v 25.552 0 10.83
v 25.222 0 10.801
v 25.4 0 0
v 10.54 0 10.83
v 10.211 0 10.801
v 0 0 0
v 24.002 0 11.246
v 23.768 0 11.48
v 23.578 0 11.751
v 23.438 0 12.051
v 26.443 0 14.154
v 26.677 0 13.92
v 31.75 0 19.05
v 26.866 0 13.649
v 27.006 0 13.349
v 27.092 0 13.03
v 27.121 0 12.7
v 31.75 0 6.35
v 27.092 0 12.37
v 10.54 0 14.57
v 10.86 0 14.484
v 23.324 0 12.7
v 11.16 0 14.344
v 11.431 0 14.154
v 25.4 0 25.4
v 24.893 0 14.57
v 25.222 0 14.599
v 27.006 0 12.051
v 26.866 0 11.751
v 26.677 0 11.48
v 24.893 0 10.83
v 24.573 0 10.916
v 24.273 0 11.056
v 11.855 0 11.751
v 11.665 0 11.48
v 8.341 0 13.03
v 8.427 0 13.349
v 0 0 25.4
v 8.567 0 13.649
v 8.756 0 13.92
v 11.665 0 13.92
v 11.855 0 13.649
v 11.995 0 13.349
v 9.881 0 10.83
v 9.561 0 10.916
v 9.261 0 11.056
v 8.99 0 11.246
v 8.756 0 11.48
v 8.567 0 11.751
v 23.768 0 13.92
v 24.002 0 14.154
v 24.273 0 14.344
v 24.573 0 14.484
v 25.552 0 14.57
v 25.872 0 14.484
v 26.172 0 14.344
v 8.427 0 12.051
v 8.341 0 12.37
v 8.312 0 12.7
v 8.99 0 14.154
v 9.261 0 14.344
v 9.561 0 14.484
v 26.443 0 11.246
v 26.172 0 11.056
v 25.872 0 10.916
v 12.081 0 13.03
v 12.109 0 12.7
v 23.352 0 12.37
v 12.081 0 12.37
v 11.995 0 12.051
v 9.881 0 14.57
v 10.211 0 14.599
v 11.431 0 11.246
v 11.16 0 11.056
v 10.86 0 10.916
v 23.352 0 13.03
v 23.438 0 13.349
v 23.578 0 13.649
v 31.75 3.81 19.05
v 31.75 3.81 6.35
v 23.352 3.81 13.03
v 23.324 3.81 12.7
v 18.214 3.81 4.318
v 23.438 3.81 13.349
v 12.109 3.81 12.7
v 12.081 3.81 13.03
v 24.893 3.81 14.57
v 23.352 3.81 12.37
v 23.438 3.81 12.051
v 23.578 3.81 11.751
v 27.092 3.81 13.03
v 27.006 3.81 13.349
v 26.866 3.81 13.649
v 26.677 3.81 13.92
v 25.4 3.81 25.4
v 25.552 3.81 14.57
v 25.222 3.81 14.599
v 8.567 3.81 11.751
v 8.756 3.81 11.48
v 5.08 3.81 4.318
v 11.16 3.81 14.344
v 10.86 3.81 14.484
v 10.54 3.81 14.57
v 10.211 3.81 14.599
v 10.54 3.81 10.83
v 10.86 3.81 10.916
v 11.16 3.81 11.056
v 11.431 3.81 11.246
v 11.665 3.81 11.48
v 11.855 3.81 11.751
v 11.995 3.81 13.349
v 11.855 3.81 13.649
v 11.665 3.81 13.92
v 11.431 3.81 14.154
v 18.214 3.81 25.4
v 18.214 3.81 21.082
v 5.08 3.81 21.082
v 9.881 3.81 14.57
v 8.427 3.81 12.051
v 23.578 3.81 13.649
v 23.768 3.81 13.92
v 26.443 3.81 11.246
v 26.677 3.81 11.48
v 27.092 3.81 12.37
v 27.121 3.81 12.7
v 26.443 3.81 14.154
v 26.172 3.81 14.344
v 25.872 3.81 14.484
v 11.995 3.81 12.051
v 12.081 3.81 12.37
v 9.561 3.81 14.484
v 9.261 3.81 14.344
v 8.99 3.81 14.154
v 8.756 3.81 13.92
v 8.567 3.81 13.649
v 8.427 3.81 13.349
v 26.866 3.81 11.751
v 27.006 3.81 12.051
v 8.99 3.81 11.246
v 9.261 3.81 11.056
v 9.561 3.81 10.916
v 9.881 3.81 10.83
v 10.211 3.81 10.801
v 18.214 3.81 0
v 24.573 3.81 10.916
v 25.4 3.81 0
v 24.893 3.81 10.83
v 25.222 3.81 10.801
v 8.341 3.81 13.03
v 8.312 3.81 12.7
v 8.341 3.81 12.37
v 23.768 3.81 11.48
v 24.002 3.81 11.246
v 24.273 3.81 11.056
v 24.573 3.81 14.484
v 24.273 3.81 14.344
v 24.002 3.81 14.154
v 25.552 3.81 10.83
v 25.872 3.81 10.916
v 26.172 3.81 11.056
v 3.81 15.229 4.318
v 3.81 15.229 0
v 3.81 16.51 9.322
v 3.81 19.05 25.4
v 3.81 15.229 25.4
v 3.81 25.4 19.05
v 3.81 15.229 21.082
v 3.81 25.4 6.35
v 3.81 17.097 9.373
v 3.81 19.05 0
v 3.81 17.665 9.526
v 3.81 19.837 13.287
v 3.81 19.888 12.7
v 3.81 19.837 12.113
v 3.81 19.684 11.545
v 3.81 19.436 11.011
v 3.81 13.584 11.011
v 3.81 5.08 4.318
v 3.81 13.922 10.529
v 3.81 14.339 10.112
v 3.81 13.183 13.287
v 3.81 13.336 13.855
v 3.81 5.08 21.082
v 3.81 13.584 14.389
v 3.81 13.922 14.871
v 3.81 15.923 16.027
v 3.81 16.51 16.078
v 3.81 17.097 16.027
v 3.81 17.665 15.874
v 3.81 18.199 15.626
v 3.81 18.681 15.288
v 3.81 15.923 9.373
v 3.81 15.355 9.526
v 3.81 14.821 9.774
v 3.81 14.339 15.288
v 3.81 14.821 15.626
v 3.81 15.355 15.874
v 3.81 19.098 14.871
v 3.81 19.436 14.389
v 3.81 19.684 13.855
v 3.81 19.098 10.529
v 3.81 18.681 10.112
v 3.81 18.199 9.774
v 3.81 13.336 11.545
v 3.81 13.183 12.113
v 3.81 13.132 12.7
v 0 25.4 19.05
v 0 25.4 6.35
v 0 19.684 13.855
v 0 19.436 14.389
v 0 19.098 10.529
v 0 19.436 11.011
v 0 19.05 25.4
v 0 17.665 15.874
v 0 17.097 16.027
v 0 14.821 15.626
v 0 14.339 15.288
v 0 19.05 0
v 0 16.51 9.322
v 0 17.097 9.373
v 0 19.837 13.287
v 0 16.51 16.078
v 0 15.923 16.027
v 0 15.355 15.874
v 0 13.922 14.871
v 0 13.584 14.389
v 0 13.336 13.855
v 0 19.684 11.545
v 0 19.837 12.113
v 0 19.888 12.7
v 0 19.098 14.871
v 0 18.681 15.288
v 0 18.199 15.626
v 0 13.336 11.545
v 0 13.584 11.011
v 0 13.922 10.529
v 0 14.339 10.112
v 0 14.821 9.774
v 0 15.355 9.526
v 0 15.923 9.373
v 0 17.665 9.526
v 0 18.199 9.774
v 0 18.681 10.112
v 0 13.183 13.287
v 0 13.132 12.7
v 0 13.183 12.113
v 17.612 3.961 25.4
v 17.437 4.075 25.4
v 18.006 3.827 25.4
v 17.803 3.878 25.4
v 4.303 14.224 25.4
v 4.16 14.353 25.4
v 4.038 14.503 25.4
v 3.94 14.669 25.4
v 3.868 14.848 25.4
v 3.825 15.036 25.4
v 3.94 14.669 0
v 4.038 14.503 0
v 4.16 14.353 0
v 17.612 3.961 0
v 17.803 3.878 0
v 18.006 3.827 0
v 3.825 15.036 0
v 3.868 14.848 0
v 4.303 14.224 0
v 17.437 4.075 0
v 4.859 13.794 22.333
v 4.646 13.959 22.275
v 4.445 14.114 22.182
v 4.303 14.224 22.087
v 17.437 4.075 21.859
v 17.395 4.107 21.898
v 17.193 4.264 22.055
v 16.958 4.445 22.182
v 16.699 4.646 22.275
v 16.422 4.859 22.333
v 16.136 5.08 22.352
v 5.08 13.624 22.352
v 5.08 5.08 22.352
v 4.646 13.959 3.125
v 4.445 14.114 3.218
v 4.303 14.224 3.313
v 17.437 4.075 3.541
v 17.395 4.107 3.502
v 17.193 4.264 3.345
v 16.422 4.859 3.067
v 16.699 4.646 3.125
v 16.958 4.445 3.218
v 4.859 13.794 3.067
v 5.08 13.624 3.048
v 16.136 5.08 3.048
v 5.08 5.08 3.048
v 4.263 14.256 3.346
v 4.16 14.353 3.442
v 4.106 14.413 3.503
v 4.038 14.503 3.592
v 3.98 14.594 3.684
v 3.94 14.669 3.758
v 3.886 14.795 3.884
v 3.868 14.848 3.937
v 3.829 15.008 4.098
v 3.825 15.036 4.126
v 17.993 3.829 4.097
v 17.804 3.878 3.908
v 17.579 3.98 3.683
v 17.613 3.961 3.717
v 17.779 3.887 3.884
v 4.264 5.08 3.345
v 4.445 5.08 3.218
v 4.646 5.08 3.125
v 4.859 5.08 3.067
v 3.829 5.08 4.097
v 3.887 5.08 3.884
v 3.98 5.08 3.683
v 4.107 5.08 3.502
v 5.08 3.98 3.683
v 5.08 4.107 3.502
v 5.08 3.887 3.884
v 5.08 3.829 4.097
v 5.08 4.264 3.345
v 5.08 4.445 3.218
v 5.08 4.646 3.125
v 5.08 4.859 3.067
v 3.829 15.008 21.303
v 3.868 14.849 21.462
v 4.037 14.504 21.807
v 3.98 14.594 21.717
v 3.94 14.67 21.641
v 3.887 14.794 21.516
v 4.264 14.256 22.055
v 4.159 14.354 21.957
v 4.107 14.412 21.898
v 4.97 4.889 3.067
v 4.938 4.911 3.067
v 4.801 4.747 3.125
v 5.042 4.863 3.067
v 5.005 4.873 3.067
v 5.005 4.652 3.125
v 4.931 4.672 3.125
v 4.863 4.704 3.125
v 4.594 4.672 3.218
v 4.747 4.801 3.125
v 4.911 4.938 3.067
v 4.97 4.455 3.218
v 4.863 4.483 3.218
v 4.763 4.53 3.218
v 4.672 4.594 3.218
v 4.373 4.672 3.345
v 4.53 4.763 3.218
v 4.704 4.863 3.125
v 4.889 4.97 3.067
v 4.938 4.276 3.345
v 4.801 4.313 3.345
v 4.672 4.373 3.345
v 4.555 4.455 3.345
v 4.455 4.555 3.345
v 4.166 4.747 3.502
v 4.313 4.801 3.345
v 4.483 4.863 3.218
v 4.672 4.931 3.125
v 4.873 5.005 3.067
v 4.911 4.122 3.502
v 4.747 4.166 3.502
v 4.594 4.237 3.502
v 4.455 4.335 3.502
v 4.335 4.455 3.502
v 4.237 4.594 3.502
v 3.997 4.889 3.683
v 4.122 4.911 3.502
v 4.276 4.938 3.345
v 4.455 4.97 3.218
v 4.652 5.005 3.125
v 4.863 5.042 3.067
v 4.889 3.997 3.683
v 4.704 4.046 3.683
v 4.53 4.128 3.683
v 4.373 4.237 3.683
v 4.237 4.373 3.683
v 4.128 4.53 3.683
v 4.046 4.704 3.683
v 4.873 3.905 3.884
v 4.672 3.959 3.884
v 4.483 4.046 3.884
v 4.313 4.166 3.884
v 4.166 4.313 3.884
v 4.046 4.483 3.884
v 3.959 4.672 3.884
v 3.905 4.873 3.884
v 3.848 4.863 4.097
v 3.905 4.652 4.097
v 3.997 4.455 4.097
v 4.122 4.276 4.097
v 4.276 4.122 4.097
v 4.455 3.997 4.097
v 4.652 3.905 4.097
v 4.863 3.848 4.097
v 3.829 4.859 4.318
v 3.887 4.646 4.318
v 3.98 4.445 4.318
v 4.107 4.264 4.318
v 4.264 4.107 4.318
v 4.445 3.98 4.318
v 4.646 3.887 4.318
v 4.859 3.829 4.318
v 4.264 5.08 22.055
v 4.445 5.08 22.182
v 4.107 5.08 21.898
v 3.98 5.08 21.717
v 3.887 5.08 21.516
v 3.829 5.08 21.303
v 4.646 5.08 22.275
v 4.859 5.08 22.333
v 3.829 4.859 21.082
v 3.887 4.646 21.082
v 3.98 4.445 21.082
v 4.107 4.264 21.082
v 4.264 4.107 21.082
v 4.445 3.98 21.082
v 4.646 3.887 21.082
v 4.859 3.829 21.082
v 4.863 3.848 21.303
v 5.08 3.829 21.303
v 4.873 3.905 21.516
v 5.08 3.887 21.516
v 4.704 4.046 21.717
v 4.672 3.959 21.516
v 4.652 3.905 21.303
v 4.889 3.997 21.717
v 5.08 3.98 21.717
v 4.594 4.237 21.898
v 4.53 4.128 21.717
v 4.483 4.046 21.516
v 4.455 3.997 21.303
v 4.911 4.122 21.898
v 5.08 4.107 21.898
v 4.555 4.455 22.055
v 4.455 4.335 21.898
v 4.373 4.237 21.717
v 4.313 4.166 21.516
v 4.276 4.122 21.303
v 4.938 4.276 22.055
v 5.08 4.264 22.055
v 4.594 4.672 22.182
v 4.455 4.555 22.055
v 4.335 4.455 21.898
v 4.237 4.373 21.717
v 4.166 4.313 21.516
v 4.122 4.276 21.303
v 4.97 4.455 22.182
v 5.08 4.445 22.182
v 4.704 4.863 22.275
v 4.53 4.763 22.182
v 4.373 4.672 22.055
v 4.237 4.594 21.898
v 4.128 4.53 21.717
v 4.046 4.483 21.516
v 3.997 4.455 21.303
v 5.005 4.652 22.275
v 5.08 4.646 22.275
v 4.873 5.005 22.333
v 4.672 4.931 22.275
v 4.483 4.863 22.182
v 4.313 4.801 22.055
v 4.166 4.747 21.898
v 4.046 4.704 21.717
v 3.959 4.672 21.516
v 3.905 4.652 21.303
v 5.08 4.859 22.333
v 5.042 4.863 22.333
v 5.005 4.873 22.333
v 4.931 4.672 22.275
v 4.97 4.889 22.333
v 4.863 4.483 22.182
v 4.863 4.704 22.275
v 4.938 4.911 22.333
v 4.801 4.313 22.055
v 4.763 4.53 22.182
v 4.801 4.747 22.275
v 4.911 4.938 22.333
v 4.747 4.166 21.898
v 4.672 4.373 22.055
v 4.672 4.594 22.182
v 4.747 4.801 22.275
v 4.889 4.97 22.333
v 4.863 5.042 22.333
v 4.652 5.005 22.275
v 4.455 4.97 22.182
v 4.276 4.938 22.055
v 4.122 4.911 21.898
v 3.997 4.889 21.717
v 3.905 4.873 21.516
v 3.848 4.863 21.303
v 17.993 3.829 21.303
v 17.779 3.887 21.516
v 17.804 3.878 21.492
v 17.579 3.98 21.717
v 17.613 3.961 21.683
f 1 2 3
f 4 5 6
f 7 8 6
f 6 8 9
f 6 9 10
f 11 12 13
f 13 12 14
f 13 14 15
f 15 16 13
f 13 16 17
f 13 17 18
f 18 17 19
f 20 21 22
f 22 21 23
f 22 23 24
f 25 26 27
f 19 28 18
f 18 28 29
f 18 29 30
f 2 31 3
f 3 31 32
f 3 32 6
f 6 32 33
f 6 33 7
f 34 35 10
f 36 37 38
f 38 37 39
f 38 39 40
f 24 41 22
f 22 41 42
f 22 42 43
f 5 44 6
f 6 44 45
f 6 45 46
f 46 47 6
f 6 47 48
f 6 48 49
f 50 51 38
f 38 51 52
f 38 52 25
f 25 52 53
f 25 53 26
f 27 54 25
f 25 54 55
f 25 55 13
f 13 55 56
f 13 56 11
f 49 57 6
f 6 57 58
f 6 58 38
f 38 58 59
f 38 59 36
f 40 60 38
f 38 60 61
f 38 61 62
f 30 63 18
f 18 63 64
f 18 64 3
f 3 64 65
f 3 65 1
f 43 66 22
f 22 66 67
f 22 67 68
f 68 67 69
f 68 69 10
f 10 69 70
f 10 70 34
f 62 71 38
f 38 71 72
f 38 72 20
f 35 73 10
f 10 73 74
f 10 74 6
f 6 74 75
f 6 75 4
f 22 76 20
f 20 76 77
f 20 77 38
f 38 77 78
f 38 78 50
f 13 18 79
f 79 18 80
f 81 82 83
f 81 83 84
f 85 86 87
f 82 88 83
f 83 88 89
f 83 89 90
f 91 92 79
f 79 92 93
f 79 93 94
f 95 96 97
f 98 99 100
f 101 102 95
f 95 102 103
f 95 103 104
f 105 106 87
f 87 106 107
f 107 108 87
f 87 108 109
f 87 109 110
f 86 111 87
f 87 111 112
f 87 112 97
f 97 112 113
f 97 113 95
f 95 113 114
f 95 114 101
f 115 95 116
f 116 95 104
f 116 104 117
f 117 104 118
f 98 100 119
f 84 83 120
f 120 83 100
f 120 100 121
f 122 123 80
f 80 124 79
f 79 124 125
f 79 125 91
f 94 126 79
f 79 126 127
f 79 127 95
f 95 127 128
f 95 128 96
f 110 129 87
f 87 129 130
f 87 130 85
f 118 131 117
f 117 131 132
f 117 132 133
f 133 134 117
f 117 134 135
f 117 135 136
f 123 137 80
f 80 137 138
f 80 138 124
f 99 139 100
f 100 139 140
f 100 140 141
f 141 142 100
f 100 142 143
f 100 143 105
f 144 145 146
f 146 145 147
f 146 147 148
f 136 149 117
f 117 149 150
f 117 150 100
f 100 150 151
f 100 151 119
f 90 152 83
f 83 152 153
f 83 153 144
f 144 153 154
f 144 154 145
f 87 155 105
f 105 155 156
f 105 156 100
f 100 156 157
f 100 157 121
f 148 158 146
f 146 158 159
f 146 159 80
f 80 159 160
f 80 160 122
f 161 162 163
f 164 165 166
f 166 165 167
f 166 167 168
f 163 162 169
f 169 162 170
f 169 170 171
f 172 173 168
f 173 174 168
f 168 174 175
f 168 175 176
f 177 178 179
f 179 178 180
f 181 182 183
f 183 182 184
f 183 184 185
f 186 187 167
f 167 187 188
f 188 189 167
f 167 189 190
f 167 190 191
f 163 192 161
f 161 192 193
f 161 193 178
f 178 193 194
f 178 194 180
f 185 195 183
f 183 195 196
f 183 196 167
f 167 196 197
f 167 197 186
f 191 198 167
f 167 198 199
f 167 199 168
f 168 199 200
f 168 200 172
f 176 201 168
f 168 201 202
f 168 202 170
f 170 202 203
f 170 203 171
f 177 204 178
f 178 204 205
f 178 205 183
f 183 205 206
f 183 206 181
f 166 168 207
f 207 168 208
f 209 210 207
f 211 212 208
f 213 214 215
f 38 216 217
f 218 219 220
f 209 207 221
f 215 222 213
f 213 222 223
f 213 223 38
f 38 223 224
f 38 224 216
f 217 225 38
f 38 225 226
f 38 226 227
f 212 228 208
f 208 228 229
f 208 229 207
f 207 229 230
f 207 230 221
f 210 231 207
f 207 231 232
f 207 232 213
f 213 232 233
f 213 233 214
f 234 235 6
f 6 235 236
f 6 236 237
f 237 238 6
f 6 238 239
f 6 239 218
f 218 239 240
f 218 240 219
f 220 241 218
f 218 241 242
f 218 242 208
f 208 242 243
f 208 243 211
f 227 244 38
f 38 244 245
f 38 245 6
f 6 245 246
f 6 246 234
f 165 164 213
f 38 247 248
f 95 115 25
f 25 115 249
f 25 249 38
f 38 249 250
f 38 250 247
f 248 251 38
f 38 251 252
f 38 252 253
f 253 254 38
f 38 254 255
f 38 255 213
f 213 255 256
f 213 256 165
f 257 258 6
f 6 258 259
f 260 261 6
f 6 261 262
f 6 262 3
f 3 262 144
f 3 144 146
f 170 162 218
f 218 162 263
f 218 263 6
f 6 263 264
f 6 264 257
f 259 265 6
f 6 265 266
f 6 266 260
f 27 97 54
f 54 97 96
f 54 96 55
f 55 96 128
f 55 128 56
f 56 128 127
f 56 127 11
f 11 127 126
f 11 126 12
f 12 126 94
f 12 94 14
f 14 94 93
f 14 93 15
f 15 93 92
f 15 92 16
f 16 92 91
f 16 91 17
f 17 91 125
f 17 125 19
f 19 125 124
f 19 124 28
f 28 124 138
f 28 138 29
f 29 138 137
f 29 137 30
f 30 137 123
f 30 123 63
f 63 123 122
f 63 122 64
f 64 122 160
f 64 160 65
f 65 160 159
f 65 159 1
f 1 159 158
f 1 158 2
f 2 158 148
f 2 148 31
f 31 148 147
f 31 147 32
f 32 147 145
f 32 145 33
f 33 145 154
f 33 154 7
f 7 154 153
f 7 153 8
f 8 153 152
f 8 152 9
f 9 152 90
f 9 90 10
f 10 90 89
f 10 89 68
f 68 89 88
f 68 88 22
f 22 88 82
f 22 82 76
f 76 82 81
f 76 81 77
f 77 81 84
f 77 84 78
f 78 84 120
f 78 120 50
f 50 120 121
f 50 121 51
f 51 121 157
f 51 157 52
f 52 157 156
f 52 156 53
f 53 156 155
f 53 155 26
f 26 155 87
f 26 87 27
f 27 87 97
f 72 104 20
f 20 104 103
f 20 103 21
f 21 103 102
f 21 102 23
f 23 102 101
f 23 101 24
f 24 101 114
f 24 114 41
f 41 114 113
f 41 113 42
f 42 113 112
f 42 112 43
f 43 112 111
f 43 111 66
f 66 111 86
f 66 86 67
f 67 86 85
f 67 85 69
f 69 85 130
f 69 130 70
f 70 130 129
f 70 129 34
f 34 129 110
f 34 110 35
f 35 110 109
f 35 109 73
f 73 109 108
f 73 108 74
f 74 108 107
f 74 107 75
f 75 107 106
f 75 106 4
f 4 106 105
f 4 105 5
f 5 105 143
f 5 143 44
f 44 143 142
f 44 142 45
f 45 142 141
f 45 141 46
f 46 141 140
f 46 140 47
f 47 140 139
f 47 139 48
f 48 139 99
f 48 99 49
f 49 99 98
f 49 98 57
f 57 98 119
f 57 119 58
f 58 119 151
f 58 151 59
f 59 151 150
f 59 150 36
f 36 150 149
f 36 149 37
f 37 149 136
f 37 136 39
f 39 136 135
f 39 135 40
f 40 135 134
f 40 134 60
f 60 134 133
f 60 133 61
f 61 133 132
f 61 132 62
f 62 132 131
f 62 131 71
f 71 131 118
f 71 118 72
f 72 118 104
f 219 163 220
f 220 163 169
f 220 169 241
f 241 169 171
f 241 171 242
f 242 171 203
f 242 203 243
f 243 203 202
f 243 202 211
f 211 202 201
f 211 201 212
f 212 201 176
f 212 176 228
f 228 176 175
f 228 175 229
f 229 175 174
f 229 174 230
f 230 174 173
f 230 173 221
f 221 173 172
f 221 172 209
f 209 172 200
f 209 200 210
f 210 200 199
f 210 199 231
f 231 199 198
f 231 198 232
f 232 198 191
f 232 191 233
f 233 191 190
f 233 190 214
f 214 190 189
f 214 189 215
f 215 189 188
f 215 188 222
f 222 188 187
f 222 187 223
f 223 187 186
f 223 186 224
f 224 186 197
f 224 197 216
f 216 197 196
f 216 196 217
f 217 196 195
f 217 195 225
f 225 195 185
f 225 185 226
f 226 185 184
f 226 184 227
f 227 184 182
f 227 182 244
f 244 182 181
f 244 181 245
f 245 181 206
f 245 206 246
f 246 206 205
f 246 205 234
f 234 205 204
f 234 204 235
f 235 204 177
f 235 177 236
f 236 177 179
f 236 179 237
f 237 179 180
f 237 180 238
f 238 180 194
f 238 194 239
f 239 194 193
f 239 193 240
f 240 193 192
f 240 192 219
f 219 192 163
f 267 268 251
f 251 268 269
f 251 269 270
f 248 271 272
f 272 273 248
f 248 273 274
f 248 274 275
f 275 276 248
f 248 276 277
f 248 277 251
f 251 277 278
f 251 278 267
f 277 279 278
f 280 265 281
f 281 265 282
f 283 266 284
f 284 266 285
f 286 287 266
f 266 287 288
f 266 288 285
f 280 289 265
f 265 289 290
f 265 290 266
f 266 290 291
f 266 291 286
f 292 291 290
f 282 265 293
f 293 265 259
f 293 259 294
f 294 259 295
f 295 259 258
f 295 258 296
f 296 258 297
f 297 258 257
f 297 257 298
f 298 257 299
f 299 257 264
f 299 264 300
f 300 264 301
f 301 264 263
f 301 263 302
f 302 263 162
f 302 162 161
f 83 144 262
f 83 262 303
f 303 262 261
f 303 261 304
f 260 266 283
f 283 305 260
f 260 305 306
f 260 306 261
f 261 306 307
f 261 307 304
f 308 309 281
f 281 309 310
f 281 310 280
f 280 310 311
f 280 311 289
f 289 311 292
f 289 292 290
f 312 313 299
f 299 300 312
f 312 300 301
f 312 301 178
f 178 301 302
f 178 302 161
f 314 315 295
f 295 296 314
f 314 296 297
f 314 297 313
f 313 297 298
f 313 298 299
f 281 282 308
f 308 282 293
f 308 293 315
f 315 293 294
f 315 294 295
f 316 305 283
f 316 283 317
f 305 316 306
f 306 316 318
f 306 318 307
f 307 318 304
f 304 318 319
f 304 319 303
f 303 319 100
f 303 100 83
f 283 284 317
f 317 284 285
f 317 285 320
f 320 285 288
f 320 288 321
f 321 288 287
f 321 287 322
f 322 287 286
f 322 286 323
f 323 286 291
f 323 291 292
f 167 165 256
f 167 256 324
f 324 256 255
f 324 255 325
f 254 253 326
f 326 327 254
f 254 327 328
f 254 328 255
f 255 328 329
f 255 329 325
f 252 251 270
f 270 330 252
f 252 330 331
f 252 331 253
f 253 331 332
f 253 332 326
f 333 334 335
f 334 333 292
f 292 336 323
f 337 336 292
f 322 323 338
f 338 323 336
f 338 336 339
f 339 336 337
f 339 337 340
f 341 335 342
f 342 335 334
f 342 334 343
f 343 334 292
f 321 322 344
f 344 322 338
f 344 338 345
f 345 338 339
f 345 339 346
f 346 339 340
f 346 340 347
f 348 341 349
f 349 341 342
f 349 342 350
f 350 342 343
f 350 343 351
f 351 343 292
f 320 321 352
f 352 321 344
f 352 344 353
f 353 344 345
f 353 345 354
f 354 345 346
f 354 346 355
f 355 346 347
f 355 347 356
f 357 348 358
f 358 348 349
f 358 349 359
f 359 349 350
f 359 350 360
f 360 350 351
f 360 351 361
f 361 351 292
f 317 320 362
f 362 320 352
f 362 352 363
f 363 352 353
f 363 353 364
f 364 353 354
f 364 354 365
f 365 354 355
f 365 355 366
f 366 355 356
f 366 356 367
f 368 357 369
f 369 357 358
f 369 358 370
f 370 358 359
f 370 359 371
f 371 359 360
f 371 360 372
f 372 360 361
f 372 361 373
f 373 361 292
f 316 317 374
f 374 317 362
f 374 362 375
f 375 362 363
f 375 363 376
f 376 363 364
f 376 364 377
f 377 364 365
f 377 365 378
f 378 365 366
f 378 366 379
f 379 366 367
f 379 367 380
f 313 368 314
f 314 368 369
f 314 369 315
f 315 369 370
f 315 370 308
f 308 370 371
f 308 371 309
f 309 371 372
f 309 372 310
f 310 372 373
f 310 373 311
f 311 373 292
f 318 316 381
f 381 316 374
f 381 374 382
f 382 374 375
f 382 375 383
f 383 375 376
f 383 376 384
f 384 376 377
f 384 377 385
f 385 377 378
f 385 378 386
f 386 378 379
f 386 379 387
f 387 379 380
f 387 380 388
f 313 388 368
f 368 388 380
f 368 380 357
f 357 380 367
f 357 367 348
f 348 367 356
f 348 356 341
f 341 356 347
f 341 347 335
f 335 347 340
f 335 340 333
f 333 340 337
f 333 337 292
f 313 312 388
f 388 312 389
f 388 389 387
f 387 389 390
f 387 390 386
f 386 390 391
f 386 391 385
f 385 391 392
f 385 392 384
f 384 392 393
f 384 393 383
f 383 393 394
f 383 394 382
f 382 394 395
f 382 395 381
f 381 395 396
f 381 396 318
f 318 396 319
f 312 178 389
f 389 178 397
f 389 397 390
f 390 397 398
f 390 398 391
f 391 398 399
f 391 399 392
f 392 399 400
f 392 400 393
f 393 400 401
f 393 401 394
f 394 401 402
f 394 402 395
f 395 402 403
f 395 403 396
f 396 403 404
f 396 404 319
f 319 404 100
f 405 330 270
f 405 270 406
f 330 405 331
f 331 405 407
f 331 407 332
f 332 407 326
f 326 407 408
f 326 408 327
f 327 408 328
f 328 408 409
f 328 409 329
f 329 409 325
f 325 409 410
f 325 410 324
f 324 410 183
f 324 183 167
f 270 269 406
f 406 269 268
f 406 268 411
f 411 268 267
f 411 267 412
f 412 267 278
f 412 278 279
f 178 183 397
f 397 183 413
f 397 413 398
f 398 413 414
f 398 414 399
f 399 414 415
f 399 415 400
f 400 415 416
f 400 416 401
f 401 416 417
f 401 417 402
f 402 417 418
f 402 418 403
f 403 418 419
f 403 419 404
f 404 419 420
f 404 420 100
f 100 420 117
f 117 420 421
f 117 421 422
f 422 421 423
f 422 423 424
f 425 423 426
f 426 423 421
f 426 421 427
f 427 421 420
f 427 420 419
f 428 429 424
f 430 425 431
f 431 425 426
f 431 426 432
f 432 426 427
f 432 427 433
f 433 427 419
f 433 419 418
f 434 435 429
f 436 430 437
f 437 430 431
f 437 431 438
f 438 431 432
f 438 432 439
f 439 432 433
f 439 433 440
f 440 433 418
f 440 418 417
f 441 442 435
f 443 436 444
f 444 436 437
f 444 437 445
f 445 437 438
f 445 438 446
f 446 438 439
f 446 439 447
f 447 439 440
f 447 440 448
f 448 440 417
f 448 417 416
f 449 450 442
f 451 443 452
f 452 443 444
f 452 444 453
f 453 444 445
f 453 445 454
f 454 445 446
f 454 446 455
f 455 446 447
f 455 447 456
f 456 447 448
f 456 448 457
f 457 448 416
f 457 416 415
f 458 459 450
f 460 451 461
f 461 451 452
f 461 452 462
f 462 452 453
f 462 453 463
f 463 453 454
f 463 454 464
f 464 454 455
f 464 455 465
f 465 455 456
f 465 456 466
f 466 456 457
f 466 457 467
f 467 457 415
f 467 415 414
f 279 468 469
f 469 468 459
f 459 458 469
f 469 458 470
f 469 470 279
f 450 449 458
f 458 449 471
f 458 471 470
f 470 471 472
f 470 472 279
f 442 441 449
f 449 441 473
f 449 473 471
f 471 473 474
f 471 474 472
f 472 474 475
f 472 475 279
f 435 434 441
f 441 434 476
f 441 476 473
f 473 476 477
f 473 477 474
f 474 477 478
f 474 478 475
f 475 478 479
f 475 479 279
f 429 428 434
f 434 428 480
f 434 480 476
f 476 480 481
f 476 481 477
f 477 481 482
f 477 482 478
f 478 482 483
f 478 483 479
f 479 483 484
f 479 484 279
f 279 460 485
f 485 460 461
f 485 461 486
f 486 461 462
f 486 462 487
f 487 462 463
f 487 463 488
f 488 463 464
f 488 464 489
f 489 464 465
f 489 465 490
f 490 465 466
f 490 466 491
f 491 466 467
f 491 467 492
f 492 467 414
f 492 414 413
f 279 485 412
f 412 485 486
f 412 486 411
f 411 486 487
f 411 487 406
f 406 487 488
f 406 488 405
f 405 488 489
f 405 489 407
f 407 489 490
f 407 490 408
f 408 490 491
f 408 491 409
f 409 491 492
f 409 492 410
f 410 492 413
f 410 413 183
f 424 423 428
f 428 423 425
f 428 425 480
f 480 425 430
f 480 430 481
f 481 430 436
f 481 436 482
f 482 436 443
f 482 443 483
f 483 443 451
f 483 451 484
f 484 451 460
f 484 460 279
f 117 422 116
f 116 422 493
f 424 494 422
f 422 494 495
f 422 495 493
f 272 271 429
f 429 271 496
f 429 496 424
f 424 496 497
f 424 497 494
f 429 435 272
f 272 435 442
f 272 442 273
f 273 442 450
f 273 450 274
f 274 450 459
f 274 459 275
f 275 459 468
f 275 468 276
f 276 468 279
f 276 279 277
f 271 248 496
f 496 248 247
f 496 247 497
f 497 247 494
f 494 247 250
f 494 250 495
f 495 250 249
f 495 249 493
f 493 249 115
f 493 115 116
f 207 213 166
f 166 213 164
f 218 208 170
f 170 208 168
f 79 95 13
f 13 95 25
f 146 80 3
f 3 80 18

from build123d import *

# Parameters (mm, degrees)
BOSS_EXTRUDE1_DEPTH     = 25.4
F_6_CLEARANCE_HOLE1_D   = 3.7973
F_1_4_CLEARANCE_HOLE1_D = 6.7564
BOSS_EXTRUDE2_DEPTH     = 3.048
BOSS_EXTRUDE3_DEPTH     = 3.048
FILLET1_R               = 1.27
CHAMFER1_SIZE           = 6.35


with BuildPart() as part:
    # Sketch1 → Boss-Extrude1 (new body)
    with BuildSketch(Plane.XY):
        Polygon((0, 0), (0, 25.4), (3.81, 25.4), (3.81, 3.81), (31.75, 3.81), (31.75, 0), align=None)
    extrude(amount=BOSS_EXTRUDE1_DEPTH)

    # #6 Clearance Hole1 (through all)
    with Locations(Plane(origin=(0, 3.81, 0), x_dir=(1, 0, 0), z_dir=(0, 1, 0))):
        with Locations((10.2108, -12.7), (25.2222, -12.7)):
            Hole(F_6_CLEARANCE_HOLE1_D / 2)

    # 1/4 Clearance Hole1 (through all)
    with Locations(Plane(origin=(3.81, 0, 0), x_dir=(0, 0, -1), z_dir=(1, 0, 0))):
        with Locations((-12.7, 16.51)):
            Hole(F_1_4_CLEARANCE_HOLE1_D / 2)

    # Sketch6 → Boss-Extrude2 (add)
    with BuildSketch(Plane.XY.offset(25.4)):
        Polygon((3.81, 3.81), (17.78, 3.81), (3.81, 14.605), align=None)
    extrude(amount=-BOSS_EXTRUDE2_DEPTH)

    # Sketch7 → Boss-Extrude3 (add)
    with BuildSketch(Plane(origin=(0, 0, 0), x_dir=(-1, 0, 0), z_dir=(0, 0, -1))):
        Polygon((-3.81, 3.81), (-17.78, 3.81), (-3.81, 14.605), align=None)
    extrude(amount=-BOSS_EXTRUDE3_DEPTH)

    # Fillet1
    fillet1_edges = [part.edges().sort_by_distance(p)[0] for p in [
        (3.81, 3.81, 12.7),
        (3.81, 9.2075, 22.352),
        (3.81, 14.605, 23.876),
        (10.795, 3.81, 22.352),
        (17.78, 3.81, 23.876),
        (3.81, 9.2075, 3.048),
        (3.81, 14.605, 1.524),
        (10.795, 3.81, 3.048),
        (17.78, 3.81, 1.524),
    ]]
    fillet(fillet1_edges, radius=FILLET1_R)

    # Chamfer1
    chamfer1_edges = [part.edges().sort_by_distance(p)[0] for p in [
        (1.905, 25.4, 25.4),
        (1.905, 25.4, 0),
        (31.75, 1.905, 0),
        (31.75, 1.905, 25.4),
    ]]
    chamfer(chamfer1_edges, length=CHAMFER1_SIZE)


solid = part.part
